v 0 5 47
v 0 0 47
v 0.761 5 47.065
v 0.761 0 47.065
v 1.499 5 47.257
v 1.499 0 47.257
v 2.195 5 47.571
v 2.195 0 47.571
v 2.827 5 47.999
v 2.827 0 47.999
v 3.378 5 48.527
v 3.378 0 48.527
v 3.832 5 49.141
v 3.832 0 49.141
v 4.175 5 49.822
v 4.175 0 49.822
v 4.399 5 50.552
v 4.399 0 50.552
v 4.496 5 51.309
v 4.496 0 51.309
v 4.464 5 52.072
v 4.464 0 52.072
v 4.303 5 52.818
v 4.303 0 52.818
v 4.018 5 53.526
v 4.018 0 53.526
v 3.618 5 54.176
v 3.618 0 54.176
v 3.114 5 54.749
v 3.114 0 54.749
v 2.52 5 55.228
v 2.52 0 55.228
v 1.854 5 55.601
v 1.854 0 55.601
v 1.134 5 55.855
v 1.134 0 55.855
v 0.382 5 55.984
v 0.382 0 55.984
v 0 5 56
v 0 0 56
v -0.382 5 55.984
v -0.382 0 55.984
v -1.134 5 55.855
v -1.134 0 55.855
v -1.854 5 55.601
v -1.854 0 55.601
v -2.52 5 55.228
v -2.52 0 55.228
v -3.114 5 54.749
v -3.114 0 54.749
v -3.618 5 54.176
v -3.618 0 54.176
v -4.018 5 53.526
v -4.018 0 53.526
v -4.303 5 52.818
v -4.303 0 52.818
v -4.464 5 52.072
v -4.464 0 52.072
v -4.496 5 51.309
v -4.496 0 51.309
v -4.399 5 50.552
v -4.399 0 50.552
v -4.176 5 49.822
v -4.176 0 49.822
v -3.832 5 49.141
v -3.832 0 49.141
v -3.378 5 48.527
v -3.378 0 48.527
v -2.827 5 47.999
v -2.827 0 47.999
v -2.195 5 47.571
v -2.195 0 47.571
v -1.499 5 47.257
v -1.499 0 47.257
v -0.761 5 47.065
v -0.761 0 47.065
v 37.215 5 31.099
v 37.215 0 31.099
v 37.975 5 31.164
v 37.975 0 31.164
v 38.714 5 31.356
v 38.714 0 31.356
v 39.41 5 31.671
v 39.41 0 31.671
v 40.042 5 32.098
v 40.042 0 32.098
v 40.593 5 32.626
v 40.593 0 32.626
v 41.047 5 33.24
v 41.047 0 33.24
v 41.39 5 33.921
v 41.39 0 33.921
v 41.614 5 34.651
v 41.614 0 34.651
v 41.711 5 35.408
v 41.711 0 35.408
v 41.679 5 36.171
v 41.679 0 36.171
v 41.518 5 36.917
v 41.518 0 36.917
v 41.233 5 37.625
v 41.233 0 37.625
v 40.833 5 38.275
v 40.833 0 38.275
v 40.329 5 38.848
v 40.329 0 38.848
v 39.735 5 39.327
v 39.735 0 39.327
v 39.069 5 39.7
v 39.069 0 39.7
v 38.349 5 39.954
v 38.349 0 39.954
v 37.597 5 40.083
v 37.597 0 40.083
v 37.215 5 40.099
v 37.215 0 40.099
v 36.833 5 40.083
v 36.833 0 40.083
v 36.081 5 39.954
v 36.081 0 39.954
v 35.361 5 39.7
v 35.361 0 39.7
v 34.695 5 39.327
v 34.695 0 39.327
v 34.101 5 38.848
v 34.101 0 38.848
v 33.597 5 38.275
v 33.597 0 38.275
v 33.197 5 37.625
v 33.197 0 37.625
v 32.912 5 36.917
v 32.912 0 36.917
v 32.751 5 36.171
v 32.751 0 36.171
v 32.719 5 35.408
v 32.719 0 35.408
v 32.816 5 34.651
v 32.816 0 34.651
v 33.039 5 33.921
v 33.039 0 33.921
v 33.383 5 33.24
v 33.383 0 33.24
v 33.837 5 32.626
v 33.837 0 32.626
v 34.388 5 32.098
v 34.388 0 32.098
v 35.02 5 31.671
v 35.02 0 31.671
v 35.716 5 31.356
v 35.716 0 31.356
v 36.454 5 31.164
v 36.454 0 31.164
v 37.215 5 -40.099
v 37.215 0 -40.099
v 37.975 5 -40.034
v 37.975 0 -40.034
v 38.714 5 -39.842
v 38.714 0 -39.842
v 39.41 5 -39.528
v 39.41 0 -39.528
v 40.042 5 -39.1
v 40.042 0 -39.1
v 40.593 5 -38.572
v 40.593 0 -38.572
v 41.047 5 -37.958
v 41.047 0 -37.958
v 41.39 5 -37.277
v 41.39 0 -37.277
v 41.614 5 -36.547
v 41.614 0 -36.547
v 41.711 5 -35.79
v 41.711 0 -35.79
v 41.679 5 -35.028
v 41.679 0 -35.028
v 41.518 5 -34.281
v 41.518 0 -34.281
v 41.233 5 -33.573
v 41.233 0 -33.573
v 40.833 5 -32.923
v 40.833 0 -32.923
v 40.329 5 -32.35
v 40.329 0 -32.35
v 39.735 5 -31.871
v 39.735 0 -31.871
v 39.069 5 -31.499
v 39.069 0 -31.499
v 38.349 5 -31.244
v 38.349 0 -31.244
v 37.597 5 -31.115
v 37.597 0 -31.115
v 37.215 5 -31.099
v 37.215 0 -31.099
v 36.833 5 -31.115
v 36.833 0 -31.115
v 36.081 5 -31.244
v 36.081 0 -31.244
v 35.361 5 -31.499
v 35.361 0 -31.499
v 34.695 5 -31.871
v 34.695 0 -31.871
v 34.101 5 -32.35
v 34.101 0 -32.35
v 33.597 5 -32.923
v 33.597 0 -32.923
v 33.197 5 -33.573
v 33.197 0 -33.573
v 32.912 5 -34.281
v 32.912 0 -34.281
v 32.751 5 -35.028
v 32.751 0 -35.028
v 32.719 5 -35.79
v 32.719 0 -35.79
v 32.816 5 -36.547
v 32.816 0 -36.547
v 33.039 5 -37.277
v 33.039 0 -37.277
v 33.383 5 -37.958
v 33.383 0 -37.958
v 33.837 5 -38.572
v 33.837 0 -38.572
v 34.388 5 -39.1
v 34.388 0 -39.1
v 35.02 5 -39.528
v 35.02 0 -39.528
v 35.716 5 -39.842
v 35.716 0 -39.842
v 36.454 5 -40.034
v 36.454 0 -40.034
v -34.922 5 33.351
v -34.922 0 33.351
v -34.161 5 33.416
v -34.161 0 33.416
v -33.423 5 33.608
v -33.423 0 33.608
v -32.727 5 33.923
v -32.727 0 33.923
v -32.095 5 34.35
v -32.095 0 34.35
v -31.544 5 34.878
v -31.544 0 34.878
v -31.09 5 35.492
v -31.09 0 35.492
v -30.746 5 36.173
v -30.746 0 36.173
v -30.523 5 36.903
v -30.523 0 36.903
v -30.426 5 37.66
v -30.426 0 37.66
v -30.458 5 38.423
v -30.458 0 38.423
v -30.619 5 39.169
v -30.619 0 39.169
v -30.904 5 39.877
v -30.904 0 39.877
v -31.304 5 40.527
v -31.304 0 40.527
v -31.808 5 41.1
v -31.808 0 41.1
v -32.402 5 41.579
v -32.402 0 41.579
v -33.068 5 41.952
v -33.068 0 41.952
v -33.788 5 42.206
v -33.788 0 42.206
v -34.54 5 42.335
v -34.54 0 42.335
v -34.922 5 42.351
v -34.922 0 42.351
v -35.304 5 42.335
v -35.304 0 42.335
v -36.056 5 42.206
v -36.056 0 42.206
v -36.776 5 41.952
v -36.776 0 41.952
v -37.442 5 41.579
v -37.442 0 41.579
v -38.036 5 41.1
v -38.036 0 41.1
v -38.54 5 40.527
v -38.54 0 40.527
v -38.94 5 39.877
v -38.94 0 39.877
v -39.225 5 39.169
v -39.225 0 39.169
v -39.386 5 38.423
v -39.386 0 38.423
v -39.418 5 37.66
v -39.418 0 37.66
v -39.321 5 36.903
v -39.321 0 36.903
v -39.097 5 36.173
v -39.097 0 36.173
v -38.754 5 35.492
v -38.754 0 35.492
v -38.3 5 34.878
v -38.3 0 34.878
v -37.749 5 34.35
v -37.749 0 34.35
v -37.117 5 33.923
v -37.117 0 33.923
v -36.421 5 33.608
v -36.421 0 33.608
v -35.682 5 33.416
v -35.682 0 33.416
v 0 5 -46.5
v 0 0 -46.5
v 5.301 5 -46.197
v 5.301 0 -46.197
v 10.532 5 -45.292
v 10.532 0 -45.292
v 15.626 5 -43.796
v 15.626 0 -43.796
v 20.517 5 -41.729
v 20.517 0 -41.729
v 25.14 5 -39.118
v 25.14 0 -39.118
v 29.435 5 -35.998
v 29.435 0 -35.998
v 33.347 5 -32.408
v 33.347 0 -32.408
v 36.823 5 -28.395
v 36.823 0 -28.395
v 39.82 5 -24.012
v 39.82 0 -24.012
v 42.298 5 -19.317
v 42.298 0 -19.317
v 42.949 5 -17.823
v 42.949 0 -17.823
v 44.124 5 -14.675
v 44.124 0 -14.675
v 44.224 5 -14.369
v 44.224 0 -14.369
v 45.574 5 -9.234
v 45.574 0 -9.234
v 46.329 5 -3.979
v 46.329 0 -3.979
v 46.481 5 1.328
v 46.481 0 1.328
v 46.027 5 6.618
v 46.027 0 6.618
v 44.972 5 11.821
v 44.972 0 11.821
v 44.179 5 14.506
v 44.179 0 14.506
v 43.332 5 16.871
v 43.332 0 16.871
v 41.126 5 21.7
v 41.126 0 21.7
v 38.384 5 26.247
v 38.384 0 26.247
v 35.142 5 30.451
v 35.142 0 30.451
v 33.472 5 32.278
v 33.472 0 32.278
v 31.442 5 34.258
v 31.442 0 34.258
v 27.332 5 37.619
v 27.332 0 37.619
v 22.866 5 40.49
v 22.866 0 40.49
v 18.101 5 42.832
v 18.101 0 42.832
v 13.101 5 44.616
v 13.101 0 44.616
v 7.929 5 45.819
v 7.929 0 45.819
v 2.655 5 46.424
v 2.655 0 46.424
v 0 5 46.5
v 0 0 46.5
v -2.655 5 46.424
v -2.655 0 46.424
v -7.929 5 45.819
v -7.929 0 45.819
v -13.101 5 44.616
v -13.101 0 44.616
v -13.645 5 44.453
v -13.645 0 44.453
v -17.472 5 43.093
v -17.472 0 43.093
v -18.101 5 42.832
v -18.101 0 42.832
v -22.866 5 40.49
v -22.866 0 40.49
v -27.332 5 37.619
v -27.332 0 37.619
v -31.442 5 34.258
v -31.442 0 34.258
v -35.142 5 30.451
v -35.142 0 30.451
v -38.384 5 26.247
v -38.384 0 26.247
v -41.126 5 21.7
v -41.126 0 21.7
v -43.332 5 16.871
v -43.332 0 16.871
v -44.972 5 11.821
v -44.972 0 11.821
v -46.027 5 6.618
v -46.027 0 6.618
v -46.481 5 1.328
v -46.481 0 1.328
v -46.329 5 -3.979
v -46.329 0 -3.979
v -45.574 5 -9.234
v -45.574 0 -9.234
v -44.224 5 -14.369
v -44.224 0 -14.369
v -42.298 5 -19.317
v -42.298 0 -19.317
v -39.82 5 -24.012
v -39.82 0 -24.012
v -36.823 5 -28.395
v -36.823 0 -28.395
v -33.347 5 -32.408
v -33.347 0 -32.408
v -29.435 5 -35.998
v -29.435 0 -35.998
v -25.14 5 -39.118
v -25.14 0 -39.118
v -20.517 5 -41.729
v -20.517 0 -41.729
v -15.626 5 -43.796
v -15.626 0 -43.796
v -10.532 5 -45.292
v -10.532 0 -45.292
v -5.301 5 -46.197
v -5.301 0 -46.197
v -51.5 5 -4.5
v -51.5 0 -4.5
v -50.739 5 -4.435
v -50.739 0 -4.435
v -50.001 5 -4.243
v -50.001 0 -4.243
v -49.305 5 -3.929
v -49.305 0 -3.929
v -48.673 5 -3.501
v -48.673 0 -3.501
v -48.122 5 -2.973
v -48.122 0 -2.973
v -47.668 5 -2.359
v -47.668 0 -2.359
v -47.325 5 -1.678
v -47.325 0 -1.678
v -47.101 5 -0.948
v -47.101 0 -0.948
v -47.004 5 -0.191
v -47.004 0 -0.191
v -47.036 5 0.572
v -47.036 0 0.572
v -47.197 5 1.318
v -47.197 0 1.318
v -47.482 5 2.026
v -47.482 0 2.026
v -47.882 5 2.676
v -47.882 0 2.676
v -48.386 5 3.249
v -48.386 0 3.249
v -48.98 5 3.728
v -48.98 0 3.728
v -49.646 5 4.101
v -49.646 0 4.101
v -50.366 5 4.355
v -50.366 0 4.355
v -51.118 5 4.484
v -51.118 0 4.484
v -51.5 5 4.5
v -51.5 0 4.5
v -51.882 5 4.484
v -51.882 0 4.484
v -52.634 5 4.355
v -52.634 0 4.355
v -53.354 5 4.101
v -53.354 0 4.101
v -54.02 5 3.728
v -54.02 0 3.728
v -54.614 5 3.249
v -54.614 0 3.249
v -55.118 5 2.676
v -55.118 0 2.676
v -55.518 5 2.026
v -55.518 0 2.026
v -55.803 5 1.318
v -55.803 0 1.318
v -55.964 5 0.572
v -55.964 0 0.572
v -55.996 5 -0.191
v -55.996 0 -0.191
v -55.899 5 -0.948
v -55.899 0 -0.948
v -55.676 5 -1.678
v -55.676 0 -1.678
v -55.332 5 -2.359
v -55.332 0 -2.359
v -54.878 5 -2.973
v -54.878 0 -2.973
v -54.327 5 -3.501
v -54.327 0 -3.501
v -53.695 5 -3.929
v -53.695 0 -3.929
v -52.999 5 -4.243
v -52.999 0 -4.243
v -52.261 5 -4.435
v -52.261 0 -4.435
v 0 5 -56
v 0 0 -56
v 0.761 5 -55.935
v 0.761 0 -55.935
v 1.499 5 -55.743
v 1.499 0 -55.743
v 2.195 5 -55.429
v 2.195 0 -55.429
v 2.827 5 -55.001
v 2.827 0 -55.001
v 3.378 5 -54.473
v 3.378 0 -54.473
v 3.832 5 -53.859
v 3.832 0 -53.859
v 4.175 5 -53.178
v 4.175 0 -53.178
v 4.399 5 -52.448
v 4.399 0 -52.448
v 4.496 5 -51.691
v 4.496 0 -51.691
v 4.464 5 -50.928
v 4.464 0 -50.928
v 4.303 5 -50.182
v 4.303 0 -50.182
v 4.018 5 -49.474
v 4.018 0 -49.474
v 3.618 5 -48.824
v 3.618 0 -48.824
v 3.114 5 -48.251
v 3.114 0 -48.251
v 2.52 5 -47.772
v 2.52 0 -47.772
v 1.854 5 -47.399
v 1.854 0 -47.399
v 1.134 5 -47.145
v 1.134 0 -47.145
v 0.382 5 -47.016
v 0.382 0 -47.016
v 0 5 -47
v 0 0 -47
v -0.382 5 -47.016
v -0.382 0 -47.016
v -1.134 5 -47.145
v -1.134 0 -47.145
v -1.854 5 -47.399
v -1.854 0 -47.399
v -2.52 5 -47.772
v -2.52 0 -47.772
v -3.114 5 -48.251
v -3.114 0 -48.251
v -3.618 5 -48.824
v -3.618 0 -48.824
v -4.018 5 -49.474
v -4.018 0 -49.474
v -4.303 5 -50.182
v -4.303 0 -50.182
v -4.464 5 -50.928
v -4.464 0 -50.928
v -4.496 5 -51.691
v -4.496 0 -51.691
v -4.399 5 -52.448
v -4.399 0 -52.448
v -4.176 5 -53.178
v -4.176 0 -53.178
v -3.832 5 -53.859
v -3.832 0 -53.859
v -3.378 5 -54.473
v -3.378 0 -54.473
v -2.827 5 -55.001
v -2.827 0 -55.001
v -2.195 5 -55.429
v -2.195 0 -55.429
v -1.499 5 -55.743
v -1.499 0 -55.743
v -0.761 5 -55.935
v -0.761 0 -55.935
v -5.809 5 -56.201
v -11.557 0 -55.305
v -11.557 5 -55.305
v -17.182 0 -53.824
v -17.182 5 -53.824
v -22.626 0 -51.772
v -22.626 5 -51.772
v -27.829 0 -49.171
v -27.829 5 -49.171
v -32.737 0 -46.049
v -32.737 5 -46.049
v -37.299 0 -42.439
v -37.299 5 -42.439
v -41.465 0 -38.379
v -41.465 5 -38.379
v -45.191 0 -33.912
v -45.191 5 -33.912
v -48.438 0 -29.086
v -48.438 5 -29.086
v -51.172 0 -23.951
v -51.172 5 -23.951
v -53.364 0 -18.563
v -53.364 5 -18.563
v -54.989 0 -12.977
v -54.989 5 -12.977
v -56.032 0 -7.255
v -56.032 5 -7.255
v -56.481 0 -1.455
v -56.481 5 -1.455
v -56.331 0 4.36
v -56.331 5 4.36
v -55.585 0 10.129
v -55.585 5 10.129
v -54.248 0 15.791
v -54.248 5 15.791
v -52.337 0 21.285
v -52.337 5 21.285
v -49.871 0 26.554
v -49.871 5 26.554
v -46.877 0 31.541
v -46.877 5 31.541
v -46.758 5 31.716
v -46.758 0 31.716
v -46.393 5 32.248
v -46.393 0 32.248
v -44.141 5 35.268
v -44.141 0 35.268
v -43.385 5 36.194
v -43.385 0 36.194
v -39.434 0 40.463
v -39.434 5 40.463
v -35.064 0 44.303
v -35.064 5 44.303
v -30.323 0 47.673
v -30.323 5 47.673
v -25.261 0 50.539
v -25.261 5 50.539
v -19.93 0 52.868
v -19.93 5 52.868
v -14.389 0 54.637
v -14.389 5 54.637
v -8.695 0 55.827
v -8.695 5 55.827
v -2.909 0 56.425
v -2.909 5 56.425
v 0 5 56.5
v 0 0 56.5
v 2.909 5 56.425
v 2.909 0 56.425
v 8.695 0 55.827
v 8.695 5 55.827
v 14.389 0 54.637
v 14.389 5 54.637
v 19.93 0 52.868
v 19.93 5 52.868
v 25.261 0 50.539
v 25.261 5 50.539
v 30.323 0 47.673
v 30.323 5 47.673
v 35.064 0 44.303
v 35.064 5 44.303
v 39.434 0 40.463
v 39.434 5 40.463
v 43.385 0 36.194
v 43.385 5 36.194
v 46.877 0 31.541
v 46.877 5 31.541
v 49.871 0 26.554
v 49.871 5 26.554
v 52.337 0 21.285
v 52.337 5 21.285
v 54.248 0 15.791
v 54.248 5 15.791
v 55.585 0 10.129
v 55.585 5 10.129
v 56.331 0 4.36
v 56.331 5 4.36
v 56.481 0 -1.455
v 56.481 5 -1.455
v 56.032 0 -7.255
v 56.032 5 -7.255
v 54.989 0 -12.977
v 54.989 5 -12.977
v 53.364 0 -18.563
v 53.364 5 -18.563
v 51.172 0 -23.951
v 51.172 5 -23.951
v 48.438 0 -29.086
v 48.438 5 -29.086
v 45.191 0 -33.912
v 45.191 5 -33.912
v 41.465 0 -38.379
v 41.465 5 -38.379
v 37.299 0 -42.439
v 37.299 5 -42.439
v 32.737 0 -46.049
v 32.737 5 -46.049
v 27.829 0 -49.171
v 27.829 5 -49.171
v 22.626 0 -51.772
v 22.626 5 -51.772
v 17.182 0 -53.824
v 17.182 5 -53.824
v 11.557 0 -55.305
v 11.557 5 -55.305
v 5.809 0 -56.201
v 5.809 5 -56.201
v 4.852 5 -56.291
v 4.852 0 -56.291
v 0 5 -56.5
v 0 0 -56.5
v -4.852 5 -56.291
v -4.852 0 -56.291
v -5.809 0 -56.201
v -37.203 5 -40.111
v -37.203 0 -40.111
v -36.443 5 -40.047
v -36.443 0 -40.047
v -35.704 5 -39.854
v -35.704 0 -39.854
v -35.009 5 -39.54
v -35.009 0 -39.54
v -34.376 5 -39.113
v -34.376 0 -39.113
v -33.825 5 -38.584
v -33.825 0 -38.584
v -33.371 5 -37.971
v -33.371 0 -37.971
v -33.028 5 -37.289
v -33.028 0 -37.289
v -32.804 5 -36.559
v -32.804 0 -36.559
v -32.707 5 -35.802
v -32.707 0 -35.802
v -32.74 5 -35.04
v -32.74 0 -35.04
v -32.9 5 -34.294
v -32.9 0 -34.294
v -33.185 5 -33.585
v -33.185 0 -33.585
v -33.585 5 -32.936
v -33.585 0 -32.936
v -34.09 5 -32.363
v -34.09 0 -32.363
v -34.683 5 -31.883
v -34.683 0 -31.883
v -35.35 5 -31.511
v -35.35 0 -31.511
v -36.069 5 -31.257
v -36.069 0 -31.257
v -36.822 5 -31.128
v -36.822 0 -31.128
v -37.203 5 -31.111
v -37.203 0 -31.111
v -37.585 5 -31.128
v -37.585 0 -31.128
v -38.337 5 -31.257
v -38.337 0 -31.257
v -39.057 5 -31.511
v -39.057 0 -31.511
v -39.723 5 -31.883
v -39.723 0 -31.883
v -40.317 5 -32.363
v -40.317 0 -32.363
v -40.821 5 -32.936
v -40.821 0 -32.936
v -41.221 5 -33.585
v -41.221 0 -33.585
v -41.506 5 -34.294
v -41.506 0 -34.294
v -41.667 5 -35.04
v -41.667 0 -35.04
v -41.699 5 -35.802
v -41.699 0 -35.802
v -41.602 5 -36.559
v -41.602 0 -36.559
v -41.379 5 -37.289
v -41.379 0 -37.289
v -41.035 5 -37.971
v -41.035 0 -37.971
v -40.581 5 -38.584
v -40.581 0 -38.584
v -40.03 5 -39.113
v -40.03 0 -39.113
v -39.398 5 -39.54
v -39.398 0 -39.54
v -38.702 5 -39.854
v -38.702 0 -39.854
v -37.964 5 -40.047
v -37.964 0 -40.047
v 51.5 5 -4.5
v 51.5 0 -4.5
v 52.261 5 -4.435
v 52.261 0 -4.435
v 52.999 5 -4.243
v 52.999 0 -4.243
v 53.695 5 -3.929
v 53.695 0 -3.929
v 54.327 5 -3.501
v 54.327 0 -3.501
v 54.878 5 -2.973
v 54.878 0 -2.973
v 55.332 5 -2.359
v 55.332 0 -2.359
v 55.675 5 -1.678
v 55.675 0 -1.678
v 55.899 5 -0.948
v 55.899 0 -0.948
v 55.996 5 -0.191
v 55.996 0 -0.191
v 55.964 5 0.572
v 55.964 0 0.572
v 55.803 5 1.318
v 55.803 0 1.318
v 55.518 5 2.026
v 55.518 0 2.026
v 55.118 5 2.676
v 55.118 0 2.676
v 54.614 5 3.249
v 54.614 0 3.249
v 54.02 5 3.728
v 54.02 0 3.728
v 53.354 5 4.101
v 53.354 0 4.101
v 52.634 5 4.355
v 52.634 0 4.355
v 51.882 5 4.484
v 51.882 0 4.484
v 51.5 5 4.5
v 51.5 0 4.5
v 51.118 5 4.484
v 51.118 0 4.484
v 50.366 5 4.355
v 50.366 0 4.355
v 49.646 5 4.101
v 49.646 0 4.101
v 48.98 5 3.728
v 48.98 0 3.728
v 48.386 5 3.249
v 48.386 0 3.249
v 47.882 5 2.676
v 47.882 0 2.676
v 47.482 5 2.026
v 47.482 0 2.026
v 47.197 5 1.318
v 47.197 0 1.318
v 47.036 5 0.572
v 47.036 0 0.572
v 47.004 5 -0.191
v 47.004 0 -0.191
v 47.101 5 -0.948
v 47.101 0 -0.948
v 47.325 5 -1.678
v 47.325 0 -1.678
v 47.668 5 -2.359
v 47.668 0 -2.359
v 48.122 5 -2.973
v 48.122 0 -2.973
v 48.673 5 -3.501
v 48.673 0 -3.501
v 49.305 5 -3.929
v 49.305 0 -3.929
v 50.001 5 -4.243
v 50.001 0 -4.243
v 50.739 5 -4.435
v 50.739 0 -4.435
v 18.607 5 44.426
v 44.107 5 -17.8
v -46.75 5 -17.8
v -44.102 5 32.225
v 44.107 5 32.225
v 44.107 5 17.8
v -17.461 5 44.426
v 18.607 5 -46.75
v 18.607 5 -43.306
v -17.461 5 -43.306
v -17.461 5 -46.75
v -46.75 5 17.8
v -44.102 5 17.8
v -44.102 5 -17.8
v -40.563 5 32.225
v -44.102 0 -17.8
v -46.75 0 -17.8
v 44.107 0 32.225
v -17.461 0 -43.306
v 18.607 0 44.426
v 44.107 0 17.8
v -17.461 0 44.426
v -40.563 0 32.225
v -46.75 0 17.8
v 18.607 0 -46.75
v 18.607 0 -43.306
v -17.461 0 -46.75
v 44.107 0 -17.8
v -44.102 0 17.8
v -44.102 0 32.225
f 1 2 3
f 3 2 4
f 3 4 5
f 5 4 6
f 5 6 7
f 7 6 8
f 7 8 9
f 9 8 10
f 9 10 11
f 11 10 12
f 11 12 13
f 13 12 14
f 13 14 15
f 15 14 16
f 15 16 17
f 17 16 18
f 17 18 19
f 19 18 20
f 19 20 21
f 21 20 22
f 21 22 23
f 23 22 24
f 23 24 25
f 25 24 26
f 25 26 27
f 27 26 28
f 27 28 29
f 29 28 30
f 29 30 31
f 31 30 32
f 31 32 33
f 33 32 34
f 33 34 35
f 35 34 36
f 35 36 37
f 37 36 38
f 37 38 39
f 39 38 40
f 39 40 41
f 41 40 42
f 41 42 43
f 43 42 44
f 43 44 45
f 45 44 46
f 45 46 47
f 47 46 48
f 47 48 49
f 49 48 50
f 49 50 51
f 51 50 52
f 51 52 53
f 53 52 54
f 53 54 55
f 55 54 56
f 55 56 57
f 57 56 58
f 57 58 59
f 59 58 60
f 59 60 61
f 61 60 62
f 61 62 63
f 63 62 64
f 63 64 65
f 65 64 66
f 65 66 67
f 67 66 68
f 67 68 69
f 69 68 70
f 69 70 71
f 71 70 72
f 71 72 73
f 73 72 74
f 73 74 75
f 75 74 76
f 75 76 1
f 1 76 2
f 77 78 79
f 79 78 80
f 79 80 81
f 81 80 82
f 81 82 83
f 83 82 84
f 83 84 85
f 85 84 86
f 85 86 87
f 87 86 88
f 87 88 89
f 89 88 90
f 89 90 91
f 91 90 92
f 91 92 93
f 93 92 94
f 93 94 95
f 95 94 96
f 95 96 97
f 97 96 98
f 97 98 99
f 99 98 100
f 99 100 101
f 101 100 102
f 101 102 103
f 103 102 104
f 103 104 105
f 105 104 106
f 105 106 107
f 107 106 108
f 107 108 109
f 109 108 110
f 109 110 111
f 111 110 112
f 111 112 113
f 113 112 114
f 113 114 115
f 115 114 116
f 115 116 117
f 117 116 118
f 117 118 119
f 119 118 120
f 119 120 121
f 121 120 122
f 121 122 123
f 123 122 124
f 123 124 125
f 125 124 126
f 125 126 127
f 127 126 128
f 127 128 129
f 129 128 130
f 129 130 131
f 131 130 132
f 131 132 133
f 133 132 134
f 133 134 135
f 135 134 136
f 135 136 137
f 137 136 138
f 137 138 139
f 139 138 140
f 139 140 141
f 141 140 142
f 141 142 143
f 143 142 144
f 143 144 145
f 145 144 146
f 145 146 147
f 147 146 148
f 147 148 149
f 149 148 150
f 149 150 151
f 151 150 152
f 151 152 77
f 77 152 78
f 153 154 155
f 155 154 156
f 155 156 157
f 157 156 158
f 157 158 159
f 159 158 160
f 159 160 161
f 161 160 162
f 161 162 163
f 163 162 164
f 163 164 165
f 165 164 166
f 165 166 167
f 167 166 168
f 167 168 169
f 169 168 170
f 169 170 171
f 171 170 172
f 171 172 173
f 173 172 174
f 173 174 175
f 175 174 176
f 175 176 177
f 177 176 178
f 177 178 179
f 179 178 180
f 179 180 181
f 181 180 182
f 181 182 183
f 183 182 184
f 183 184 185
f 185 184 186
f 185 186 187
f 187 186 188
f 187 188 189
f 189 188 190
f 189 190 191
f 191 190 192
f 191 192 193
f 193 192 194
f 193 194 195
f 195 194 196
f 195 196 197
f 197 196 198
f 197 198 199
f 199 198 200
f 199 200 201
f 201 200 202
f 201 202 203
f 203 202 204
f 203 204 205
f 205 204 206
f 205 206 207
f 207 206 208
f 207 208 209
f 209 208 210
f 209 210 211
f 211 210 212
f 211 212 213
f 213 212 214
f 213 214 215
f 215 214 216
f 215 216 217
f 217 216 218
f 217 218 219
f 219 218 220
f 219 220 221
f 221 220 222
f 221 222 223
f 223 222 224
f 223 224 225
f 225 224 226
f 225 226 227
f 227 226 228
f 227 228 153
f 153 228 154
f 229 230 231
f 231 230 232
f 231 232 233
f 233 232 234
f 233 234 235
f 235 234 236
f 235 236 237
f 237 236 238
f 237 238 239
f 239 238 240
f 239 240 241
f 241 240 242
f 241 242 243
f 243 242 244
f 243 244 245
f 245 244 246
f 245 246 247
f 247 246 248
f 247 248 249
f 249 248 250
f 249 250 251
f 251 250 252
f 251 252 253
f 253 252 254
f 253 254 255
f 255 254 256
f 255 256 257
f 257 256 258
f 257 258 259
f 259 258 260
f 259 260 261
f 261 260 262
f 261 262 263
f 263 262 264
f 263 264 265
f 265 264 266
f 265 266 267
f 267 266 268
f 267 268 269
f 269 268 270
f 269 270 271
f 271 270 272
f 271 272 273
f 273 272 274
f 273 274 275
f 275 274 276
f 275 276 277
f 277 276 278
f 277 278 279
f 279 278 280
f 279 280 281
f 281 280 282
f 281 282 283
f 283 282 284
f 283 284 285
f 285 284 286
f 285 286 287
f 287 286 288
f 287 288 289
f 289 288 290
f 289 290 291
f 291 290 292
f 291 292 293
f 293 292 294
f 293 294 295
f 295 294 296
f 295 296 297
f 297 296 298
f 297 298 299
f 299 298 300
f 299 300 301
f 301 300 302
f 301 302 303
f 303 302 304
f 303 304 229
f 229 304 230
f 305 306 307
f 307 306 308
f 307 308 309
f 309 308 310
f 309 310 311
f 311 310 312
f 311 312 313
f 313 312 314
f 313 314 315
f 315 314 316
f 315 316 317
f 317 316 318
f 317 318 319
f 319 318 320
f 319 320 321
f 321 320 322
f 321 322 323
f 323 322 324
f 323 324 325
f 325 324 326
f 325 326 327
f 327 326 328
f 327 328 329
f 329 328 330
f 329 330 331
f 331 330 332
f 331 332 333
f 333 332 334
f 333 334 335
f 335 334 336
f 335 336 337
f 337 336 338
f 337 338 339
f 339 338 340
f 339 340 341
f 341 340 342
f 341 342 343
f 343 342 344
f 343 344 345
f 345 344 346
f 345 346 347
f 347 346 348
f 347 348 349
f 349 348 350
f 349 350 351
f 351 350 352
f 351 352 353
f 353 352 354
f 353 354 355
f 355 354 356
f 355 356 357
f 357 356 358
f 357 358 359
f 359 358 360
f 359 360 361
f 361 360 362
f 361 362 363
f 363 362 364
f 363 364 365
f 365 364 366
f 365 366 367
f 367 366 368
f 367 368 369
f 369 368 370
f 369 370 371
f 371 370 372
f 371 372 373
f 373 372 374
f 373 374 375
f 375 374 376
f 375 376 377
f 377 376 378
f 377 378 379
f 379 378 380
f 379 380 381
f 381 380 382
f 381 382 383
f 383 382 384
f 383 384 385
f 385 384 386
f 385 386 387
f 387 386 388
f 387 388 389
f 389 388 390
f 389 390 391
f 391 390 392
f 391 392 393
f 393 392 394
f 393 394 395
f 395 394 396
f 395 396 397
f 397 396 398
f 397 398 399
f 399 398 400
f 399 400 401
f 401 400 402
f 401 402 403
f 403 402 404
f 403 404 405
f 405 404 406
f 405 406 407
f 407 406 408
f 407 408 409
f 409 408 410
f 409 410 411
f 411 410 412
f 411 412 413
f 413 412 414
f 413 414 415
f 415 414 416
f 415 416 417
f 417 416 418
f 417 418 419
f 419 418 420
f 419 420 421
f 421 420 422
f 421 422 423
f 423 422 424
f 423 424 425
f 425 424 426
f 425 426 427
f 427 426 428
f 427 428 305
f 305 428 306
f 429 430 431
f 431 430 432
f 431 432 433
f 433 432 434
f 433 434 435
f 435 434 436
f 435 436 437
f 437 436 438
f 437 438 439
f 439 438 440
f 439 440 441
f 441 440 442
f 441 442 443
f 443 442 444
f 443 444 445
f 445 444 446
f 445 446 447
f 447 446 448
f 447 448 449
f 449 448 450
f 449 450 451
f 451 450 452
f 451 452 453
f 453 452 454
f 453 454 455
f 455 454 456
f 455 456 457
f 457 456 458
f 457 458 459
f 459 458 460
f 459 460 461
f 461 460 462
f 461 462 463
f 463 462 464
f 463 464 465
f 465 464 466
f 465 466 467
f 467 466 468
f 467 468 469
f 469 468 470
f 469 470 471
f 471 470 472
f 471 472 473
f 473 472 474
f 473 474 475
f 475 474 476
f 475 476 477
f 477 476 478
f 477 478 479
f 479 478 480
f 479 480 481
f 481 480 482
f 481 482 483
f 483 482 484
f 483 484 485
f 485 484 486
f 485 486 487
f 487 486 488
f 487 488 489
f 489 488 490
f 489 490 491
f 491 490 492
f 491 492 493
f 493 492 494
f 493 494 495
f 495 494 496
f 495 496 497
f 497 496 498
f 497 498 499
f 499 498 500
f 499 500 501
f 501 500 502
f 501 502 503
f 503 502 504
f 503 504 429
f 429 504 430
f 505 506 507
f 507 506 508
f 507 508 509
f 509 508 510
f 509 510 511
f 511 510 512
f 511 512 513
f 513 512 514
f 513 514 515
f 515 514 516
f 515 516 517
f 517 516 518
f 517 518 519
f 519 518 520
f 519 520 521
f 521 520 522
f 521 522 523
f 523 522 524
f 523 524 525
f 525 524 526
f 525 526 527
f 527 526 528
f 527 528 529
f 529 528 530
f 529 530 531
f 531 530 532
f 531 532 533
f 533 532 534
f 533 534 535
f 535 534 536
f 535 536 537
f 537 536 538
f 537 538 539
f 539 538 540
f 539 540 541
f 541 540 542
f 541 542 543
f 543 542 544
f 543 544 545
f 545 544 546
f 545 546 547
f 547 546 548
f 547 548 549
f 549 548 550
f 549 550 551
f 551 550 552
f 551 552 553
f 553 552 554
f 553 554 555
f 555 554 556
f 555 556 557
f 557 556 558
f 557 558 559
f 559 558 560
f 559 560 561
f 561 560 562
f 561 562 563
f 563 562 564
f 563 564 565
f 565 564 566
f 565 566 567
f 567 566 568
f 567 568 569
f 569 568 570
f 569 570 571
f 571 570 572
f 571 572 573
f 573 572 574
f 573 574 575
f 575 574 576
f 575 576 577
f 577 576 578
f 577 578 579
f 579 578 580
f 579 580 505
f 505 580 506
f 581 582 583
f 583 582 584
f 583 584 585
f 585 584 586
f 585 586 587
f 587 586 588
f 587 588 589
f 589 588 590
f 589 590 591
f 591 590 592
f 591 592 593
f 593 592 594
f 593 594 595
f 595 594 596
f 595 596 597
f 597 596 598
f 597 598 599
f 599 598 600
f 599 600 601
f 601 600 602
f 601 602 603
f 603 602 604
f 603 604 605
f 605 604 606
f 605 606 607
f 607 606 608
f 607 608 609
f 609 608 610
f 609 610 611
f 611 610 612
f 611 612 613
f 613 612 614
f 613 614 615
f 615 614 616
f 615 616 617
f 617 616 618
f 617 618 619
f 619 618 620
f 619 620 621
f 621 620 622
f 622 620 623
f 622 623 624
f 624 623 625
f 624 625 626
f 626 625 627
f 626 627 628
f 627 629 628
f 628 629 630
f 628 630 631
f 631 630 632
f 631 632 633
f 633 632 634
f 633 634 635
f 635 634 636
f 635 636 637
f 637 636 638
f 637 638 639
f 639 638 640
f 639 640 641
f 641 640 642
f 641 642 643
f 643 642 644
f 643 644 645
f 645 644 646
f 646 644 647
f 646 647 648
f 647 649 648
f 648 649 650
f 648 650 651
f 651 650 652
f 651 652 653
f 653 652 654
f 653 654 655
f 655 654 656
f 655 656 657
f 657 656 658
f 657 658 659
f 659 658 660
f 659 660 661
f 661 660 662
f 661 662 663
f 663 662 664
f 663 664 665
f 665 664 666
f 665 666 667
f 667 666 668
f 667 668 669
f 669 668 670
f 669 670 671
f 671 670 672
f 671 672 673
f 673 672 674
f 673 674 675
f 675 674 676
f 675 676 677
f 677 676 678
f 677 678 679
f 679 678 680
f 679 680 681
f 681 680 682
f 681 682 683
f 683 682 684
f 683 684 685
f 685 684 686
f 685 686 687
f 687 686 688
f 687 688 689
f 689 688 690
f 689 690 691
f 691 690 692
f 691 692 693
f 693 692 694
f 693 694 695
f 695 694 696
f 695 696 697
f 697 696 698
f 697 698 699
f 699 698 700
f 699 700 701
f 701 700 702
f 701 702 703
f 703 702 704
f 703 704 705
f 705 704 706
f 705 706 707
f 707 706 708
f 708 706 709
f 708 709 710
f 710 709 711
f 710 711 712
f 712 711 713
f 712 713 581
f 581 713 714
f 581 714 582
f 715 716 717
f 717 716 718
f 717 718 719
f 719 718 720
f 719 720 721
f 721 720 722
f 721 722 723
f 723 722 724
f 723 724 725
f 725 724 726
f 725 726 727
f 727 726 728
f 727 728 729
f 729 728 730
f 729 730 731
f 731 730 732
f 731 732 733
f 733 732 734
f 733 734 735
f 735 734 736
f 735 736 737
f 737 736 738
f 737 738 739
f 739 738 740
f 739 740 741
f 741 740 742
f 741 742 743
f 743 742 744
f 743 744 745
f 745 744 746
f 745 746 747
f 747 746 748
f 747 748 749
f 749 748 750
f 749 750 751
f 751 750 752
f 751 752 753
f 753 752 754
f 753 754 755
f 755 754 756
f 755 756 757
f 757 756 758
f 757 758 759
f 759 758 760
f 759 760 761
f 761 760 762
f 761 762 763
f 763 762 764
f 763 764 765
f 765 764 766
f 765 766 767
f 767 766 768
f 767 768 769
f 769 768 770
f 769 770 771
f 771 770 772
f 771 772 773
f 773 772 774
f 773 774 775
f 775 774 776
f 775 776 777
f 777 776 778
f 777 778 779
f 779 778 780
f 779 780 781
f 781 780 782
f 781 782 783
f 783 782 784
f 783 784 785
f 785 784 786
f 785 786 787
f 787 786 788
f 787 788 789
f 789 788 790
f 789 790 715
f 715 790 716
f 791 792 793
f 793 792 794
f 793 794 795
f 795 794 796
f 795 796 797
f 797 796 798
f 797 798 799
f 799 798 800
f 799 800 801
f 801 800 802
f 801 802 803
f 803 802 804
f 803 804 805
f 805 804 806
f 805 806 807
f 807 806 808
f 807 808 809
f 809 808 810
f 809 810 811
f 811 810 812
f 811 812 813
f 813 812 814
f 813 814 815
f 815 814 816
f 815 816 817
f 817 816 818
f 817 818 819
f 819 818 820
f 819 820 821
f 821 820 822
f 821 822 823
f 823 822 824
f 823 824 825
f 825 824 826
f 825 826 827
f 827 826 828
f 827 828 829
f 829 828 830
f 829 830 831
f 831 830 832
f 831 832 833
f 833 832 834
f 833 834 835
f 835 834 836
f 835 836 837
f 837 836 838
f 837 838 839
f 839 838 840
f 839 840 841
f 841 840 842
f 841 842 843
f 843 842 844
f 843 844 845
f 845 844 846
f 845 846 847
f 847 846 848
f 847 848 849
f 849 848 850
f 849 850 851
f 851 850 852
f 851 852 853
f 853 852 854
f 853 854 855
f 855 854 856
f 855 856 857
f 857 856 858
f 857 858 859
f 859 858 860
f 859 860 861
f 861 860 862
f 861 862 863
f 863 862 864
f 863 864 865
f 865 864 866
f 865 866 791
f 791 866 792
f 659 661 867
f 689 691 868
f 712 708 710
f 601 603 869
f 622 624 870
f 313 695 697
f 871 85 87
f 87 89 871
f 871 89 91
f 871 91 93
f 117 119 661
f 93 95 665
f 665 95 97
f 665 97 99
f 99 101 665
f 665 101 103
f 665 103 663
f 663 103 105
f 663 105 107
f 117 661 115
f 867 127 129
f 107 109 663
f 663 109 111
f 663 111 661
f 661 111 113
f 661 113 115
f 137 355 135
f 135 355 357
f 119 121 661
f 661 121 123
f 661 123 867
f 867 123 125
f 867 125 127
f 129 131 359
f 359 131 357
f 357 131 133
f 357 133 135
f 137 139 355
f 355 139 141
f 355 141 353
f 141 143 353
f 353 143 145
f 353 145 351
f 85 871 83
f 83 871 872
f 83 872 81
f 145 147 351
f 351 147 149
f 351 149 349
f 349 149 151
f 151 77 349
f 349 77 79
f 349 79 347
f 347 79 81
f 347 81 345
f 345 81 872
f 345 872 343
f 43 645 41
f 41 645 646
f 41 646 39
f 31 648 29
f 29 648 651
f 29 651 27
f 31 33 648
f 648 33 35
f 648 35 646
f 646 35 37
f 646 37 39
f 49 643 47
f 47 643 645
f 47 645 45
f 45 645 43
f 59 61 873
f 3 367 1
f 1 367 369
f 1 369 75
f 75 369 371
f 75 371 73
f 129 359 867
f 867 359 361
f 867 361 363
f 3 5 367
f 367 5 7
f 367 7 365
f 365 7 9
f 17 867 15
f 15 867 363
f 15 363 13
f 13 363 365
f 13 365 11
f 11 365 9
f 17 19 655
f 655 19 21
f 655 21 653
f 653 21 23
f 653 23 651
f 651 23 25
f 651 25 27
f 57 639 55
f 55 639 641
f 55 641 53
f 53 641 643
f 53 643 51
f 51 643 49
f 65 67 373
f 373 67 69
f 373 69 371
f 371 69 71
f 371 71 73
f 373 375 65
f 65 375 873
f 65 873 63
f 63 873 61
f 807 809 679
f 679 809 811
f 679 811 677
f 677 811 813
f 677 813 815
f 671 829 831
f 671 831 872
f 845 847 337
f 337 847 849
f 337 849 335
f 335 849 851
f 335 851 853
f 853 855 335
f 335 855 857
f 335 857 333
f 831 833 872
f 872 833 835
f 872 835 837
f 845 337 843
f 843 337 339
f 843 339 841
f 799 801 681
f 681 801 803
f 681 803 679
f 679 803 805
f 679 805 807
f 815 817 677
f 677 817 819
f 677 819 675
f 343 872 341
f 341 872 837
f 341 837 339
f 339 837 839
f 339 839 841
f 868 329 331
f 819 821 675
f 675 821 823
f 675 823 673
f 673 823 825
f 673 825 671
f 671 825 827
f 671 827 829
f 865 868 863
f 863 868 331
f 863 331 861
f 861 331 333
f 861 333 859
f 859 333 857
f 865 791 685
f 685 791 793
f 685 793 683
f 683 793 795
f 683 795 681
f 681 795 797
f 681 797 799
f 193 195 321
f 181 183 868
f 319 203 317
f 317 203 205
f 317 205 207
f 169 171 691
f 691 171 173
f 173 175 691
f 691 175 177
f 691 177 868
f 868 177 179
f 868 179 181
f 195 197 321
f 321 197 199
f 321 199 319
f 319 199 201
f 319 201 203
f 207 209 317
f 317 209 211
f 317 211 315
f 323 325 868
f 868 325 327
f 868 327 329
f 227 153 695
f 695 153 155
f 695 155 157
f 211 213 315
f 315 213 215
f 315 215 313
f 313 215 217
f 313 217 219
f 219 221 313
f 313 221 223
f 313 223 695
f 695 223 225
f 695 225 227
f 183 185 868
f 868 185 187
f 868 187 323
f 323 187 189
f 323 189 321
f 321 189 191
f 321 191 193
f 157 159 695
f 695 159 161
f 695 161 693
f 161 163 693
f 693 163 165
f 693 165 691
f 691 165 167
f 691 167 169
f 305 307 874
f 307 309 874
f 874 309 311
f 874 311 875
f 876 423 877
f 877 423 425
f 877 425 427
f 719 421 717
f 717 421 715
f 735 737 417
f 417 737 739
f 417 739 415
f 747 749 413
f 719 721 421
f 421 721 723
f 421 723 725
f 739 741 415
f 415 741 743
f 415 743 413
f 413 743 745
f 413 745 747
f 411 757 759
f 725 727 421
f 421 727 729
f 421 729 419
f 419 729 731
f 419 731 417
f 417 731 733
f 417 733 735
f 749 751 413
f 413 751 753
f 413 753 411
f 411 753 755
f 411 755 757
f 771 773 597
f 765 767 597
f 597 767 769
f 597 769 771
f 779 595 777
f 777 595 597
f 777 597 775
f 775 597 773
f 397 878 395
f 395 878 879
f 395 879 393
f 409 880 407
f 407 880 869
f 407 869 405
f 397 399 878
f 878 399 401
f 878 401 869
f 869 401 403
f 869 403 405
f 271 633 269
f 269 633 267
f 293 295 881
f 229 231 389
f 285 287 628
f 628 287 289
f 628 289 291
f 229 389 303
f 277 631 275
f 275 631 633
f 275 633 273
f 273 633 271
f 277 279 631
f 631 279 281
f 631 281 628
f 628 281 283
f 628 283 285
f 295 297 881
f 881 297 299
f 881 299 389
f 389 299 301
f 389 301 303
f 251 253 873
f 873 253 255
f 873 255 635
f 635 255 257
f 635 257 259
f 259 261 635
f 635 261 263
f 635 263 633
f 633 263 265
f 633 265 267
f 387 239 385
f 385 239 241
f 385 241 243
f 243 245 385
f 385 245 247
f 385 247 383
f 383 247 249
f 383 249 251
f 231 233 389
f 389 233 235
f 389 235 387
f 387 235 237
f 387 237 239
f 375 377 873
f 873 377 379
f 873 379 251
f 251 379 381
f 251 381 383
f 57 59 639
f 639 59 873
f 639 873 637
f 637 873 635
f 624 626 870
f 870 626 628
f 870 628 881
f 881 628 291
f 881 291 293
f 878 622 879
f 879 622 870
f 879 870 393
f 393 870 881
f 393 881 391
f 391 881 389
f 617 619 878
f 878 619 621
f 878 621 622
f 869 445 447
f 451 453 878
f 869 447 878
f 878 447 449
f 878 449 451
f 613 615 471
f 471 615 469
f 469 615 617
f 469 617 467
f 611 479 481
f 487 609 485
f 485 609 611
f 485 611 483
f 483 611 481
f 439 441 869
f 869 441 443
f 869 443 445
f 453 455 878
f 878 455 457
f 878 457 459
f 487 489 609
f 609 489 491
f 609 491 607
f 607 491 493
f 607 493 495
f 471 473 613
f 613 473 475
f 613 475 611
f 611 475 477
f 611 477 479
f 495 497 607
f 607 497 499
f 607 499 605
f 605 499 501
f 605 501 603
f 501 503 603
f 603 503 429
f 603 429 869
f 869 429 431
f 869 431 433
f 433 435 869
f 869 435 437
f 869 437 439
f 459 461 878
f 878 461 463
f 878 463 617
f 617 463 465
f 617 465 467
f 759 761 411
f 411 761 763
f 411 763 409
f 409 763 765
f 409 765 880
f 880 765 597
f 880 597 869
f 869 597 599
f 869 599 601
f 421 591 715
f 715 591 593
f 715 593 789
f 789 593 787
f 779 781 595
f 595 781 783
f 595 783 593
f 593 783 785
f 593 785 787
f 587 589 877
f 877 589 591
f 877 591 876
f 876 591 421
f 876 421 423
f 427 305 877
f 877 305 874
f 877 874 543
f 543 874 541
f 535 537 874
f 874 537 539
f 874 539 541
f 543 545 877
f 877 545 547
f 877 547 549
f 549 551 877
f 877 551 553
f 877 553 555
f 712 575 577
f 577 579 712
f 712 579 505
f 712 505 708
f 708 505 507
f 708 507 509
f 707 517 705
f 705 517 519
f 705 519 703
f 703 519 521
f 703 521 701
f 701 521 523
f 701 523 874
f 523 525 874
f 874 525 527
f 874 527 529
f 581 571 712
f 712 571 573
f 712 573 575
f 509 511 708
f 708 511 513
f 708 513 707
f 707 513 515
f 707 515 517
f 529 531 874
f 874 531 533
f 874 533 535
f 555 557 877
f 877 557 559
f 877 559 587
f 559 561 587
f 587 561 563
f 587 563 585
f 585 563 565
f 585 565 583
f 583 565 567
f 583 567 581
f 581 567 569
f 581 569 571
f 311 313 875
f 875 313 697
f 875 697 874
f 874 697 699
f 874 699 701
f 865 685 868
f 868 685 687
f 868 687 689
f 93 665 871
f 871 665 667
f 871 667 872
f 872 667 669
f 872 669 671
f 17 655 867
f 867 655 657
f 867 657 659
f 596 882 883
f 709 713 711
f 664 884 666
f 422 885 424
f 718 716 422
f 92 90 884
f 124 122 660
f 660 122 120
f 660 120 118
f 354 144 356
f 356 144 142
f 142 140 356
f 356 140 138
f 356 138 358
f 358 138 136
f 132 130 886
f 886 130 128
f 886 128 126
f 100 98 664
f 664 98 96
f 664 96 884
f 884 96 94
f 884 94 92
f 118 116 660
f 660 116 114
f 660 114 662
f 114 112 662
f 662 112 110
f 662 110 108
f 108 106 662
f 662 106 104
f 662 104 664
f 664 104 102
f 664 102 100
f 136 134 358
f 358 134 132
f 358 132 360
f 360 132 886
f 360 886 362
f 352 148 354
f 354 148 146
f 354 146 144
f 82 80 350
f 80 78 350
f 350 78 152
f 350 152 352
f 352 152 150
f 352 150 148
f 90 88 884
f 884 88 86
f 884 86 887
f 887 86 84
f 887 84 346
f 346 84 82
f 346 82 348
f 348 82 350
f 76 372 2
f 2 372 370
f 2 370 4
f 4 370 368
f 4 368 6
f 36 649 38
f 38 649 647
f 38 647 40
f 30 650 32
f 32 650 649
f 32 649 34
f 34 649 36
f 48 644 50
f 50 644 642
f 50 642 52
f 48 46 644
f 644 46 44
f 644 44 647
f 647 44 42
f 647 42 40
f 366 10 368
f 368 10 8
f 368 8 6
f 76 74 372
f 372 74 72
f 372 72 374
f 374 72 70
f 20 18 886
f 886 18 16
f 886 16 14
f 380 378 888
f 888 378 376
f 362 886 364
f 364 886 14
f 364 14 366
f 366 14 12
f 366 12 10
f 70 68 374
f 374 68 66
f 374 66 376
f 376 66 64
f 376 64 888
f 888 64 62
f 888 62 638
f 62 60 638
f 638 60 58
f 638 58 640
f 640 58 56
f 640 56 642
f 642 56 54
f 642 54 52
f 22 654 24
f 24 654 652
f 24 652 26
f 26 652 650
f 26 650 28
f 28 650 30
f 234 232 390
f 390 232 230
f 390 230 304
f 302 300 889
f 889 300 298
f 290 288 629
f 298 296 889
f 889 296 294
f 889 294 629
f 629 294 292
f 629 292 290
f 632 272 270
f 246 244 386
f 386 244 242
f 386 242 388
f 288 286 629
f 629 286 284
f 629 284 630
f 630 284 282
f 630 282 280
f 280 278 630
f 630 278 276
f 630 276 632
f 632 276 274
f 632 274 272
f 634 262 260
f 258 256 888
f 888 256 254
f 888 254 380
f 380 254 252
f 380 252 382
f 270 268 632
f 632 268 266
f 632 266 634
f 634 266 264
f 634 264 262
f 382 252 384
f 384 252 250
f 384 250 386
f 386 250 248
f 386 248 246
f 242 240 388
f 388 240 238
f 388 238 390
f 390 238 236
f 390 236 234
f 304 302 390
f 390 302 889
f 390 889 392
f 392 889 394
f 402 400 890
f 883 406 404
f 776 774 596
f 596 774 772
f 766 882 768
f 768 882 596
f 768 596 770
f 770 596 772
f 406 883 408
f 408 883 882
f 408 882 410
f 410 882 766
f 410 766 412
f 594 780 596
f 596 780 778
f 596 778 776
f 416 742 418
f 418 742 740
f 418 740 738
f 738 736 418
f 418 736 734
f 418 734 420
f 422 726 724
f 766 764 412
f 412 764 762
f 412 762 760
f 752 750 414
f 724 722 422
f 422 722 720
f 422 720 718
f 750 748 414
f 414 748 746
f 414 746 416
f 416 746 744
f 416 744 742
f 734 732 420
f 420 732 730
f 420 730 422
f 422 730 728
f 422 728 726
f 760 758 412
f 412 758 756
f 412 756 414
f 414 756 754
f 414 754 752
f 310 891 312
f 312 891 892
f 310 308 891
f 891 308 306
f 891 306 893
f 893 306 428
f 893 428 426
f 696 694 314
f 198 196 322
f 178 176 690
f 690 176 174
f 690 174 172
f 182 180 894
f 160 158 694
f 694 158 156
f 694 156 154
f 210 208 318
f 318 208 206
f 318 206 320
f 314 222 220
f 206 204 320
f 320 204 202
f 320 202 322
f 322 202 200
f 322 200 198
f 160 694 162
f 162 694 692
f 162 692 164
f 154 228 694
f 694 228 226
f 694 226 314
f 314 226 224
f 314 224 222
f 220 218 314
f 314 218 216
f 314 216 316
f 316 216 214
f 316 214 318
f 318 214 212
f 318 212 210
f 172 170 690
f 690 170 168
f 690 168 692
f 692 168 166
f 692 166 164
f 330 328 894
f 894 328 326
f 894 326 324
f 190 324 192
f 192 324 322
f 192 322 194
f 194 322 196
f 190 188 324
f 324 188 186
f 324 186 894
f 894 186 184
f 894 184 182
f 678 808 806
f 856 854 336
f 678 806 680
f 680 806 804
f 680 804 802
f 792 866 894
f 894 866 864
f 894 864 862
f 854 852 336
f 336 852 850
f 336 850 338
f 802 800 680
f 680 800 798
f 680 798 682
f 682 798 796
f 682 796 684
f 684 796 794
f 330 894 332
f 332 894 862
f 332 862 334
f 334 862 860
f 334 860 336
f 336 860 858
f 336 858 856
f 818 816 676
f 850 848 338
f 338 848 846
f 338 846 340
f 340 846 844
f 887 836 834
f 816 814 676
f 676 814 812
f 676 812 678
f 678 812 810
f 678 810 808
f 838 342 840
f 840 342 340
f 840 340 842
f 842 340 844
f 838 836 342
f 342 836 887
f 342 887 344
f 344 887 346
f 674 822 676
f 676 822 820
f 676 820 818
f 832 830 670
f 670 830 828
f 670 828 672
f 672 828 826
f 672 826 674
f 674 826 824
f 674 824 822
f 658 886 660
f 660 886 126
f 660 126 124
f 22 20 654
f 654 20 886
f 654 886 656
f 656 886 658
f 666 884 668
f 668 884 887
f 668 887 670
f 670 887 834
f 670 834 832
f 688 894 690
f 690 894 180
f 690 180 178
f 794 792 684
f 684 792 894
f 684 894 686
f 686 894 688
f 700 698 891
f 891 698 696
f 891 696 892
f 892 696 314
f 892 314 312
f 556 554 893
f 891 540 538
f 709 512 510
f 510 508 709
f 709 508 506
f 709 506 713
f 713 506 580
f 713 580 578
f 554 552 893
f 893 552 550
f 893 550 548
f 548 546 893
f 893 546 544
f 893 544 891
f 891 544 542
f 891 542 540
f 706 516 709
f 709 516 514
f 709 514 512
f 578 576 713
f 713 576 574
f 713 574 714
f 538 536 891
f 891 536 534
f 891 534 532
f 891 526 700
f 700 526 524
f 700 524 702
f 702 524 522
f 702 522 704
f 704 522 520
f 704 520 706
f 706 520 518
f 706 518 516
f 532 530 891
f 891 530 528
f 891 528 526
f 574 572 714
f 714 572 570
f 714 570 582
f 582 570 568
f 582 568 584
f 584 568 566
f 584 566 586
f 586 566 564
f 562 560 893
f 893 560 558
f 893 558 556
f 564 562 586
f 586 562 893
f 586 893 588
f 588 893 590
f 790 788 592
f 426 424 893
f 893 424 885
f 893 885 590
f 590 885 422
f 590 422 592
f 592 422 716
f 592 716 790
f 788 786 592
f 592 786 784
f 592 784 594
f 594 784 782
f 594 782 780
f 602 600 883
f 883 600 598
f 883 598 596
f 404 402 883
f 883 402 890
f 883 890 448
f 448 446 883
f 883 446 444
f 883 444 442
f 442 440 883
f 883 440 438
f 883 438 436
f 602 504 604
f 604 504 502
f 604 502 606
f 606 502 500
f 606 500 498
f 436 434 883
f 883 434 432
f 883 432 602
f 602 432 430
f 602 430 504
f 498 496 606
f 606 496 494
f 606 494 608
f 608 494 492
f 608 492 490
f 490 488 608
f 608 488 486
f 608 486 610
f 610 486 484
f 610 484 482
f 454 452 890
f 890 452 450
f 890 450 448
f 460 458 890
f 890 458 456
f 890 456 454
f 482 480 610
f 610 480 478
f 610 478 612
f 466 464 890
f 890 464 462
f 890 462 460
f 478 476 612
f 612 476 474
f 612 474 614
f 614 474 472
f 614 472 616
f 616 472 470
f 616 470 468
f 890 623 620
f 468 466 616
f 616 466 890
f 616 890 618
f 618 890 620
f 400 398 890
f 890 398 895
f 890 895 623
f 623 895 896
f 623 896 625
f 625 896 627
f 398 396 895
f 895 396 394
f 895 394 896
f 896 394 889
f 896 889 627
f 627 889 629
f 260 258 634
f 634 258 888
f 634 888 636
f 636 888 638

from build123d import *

# Parameters (mm, degrees)
BOSS_EXTRUDE1_DEPTH = 5


with BuildPart() as part:
    # Sketch1 → Boss-Extrude1 (new body)
    with BuildSketch(Plane(origin=(0, 0, 0), x_dir=(1, 0, 0), z_dir=(0, 1, 0))):
        with BuildLine():
            ThreePointArc((0, -56.5), (22.199372282, -51.95611485), (40.828075606, -39.055322843))
            Line((40.828075606, -39.055322843), (40.466765202, -38.709700517))
            ThreePointArc((40.466765202, -38.709700517), (34.104370635, -38.850893215), (33.963177937, -32.488498648))
            Line((33.963177937, -32.488498648), (33.601867534, -32.142876322))
            ThreePointArc((33.601867534, -32.142876322), (18.270279842, -42.76034231), (0, -46.5))
            Line((0, -46.5), (0, -47))
            ThreePointArc((0, -47), (3.181980515, -48.318019485), (4.5, -51.5))
            ThreePointArc((4.5, -51.5), (3.181980515, -54.681980515), (0, -56))
            Line((0, -56), (0, -56.5))
        make_face()
        with BuildLine():
            ThreePointArc((40.828075606, -39.055322843), (52.435847813, -21.041194456), (56.5, 0))
            Line((56.5, 0), (56, 0))
            ThreePointArc((56, 0), (51.5, -4.5), (47, 0))
            Line((47, 0), (46.5, 0))
            ThreePointArc((46.5, 0), (43.155166784, -17.317089243), (33.601867534, -32.142876322))
            Line((33.601867534, -32.142876322), (33.963177937, -32.488498648))
            ThreePointArc((33.963177937, -32.488498648), (38.890818916, -31.422793119), (41.71497157, -35.599099582))
            ThreePointArc((41.71497157, -35.599099582), (41.391278033, -37.274946928), (40.466765202, -38.709700517))
            Line((40.466765202, -38.709700517), (40.828075606, -39.055322843))
        make_face()
        with BuildLine():
            ThreePointArc((56.5, 0), (52.435847813, 21.041194456), (40.828075606, 39.055322843))
            Line((40.828075606, 39.055322843), (40.466765202, 38.709700517))
            ThreePointArc((40.466765202, 38.709700517), (41.391278033, 37.274946928), (41.71497157, 35.599099582))
            ThreePointArc((41.71497157, 35.599099582), (38.890818916, 31.422793119), (33.963177937, 32.488498648))
            Line((33.963177937, 32.488498648), (33.601867534, 32.142876322))
            ThreePointArc((33.601867534, 32.142876322), (43.155166784, 17.317089243), (46.5, 0))
            Line((46.5, 0), (47, 0))
            ThreePointArc((47, 0), (51.5, 4.5), (56, 0))
            Line((56, 0), (56.5, 0))
        make_face()
        with BuildLine():
            ThreePointArc((40.828075606, 39.055322843), (22.199372282, 51.95611485), (0, 56.5))
            Line((0, 56.5), (0, 56))
            ThreePointArc((0, 56), (3.181980515, 54.681980515), (4.5, 51.5))
            ThreePointArc((4.5, 51.5), (3.181980515, 48.318019485), (0, 47))
            Line((0, 47), (0, 46.5))
            ThreePointArc((0, 46.5), (18.270279842, 42.76034231), (33.601867534, 32.142876322))
            Line((33.601867534, 32.142876322), (33.963177937, 32.488498648))
            ThreePointArc((33.963177937, 32.488498648), (34.104370635, 38.850893215), (40.466765202, 38.709700517))
            Line((40.466765202, 38.709700517), (40.828075606, 39.055322843))
        make_face()
        with BuildLine():
            Line((0, 56), (0, 56.5))
            ThreePointArc((0, 56.5), (-22.190806646, 51.959773868), (-40.815196293, 39.068782315))
            Line((-40.815196293, 39.068782315), (-40.453999865, 38.723040879))
            ThreePointArc((-40.453999865, 38.723040879), (-35.526696202, 39.787398082), (-32.703232019, 35.611367951))
            ThreePointArc((-32.703232019, 35.611367951), (-33.027201888, 33.934832134), (-33.952464173, 32.499695023))
            Line((-33.952464173, 32.499695023), (-33.591267745, 32.153953587))
            ThreePointArc((-33.591267745, 32.153953587), (-18.263230248, 42.763353714), (0, 46.5))
            Line((0, 46.5), (0, 47))
            ThreePointArc((0, 47), (-4.5, 51.5), (0, 56))
        make_face()
        with BuildLine():
            Line((-40.453999865, 38.723040879), (-40.815196293, 39.068782315))
            ThreePointArc((-40.815196293, 39.068782315), (-52.43237831, 21.049838592), (-56.5, 0))
            Line((-56.5, 0), (-56, 0))
            ThreePointArc((-56, 0), (-51.5, 4.5), (-47, 0))
            Line((-47, 0), (-46.5, 0))
            ThreePointArc((-46.5, 0), (-43.152311353, 17.324203443), (-33.591267745, 32.153953587))
            Line((-33.591267745, 32.153953587), (-33.952464173, 32.499695023))
            ThreePointArc((-33.952464173, 32.499695023), (-40.314904947, 32.360600105), (-40.453999865, 38.723040879))
        make_face()
        with BuildLine():
            Line((-56, 0), (-56.5, 0))
            ThreePointArc((-56.5, 0), (-51.753754464, -22.667132569), (-38.312428358, -41.525989854))
            Line((-38.312428358, -41.525989854), (-37.973380319, -41.158503218))
            ThreePointArc((-37.973380319, -41.158503218), (-38.229327695, -34.799691148), (-31.870515625, -34.543743772))
            Line((-31.870515625, -34.543743772), (-31.531467586, -34.176257136))
            ThreePointArc((-31.531467586, -34.176257136), (-42.593797922, -18.655250698), (-46.5, 0))
            Line((-46.5, 0), (-47, 0))
            ThreePointArc((-47, 0), (-51.5, -4.5), (-56, 0))
        make_face()
        with BuildLine():
            Line((-37.973380319, -41.158503218), (-38.312428358, -41.525989854))
            ThreePointArc((-38.312428358, -41.525989854), (-20.567347584, -52.623513883), (0, -56.5))
            Line((0, -56.5), (0, -56))
            ThreePointArc((0, -56), (-4.5, -51.5), (0, -47))
            Line((0, -47), (0, -46.5))
            ThreePointArc((0, -46.5), (-16.927109073, -43.30961762), (-31.531467586, -34.176257136))
            Line((-31.531467586, -34.176257136), (-31.870515625, -34.543743772))
            ThreePointArc((-31.870515625, -34.543743772), (-30.799967528, -36.045776653), (-30.421947972, -37.851123495))
            ThreePointArc((-30.421947972, -37.851123495), (-33.11660113, -41.973103939), (-37.973380319, -41.158503218))
        make_face()
    extrude(amount=BOSS_EXTRUDE1_DEPTH)


solid = part.part
